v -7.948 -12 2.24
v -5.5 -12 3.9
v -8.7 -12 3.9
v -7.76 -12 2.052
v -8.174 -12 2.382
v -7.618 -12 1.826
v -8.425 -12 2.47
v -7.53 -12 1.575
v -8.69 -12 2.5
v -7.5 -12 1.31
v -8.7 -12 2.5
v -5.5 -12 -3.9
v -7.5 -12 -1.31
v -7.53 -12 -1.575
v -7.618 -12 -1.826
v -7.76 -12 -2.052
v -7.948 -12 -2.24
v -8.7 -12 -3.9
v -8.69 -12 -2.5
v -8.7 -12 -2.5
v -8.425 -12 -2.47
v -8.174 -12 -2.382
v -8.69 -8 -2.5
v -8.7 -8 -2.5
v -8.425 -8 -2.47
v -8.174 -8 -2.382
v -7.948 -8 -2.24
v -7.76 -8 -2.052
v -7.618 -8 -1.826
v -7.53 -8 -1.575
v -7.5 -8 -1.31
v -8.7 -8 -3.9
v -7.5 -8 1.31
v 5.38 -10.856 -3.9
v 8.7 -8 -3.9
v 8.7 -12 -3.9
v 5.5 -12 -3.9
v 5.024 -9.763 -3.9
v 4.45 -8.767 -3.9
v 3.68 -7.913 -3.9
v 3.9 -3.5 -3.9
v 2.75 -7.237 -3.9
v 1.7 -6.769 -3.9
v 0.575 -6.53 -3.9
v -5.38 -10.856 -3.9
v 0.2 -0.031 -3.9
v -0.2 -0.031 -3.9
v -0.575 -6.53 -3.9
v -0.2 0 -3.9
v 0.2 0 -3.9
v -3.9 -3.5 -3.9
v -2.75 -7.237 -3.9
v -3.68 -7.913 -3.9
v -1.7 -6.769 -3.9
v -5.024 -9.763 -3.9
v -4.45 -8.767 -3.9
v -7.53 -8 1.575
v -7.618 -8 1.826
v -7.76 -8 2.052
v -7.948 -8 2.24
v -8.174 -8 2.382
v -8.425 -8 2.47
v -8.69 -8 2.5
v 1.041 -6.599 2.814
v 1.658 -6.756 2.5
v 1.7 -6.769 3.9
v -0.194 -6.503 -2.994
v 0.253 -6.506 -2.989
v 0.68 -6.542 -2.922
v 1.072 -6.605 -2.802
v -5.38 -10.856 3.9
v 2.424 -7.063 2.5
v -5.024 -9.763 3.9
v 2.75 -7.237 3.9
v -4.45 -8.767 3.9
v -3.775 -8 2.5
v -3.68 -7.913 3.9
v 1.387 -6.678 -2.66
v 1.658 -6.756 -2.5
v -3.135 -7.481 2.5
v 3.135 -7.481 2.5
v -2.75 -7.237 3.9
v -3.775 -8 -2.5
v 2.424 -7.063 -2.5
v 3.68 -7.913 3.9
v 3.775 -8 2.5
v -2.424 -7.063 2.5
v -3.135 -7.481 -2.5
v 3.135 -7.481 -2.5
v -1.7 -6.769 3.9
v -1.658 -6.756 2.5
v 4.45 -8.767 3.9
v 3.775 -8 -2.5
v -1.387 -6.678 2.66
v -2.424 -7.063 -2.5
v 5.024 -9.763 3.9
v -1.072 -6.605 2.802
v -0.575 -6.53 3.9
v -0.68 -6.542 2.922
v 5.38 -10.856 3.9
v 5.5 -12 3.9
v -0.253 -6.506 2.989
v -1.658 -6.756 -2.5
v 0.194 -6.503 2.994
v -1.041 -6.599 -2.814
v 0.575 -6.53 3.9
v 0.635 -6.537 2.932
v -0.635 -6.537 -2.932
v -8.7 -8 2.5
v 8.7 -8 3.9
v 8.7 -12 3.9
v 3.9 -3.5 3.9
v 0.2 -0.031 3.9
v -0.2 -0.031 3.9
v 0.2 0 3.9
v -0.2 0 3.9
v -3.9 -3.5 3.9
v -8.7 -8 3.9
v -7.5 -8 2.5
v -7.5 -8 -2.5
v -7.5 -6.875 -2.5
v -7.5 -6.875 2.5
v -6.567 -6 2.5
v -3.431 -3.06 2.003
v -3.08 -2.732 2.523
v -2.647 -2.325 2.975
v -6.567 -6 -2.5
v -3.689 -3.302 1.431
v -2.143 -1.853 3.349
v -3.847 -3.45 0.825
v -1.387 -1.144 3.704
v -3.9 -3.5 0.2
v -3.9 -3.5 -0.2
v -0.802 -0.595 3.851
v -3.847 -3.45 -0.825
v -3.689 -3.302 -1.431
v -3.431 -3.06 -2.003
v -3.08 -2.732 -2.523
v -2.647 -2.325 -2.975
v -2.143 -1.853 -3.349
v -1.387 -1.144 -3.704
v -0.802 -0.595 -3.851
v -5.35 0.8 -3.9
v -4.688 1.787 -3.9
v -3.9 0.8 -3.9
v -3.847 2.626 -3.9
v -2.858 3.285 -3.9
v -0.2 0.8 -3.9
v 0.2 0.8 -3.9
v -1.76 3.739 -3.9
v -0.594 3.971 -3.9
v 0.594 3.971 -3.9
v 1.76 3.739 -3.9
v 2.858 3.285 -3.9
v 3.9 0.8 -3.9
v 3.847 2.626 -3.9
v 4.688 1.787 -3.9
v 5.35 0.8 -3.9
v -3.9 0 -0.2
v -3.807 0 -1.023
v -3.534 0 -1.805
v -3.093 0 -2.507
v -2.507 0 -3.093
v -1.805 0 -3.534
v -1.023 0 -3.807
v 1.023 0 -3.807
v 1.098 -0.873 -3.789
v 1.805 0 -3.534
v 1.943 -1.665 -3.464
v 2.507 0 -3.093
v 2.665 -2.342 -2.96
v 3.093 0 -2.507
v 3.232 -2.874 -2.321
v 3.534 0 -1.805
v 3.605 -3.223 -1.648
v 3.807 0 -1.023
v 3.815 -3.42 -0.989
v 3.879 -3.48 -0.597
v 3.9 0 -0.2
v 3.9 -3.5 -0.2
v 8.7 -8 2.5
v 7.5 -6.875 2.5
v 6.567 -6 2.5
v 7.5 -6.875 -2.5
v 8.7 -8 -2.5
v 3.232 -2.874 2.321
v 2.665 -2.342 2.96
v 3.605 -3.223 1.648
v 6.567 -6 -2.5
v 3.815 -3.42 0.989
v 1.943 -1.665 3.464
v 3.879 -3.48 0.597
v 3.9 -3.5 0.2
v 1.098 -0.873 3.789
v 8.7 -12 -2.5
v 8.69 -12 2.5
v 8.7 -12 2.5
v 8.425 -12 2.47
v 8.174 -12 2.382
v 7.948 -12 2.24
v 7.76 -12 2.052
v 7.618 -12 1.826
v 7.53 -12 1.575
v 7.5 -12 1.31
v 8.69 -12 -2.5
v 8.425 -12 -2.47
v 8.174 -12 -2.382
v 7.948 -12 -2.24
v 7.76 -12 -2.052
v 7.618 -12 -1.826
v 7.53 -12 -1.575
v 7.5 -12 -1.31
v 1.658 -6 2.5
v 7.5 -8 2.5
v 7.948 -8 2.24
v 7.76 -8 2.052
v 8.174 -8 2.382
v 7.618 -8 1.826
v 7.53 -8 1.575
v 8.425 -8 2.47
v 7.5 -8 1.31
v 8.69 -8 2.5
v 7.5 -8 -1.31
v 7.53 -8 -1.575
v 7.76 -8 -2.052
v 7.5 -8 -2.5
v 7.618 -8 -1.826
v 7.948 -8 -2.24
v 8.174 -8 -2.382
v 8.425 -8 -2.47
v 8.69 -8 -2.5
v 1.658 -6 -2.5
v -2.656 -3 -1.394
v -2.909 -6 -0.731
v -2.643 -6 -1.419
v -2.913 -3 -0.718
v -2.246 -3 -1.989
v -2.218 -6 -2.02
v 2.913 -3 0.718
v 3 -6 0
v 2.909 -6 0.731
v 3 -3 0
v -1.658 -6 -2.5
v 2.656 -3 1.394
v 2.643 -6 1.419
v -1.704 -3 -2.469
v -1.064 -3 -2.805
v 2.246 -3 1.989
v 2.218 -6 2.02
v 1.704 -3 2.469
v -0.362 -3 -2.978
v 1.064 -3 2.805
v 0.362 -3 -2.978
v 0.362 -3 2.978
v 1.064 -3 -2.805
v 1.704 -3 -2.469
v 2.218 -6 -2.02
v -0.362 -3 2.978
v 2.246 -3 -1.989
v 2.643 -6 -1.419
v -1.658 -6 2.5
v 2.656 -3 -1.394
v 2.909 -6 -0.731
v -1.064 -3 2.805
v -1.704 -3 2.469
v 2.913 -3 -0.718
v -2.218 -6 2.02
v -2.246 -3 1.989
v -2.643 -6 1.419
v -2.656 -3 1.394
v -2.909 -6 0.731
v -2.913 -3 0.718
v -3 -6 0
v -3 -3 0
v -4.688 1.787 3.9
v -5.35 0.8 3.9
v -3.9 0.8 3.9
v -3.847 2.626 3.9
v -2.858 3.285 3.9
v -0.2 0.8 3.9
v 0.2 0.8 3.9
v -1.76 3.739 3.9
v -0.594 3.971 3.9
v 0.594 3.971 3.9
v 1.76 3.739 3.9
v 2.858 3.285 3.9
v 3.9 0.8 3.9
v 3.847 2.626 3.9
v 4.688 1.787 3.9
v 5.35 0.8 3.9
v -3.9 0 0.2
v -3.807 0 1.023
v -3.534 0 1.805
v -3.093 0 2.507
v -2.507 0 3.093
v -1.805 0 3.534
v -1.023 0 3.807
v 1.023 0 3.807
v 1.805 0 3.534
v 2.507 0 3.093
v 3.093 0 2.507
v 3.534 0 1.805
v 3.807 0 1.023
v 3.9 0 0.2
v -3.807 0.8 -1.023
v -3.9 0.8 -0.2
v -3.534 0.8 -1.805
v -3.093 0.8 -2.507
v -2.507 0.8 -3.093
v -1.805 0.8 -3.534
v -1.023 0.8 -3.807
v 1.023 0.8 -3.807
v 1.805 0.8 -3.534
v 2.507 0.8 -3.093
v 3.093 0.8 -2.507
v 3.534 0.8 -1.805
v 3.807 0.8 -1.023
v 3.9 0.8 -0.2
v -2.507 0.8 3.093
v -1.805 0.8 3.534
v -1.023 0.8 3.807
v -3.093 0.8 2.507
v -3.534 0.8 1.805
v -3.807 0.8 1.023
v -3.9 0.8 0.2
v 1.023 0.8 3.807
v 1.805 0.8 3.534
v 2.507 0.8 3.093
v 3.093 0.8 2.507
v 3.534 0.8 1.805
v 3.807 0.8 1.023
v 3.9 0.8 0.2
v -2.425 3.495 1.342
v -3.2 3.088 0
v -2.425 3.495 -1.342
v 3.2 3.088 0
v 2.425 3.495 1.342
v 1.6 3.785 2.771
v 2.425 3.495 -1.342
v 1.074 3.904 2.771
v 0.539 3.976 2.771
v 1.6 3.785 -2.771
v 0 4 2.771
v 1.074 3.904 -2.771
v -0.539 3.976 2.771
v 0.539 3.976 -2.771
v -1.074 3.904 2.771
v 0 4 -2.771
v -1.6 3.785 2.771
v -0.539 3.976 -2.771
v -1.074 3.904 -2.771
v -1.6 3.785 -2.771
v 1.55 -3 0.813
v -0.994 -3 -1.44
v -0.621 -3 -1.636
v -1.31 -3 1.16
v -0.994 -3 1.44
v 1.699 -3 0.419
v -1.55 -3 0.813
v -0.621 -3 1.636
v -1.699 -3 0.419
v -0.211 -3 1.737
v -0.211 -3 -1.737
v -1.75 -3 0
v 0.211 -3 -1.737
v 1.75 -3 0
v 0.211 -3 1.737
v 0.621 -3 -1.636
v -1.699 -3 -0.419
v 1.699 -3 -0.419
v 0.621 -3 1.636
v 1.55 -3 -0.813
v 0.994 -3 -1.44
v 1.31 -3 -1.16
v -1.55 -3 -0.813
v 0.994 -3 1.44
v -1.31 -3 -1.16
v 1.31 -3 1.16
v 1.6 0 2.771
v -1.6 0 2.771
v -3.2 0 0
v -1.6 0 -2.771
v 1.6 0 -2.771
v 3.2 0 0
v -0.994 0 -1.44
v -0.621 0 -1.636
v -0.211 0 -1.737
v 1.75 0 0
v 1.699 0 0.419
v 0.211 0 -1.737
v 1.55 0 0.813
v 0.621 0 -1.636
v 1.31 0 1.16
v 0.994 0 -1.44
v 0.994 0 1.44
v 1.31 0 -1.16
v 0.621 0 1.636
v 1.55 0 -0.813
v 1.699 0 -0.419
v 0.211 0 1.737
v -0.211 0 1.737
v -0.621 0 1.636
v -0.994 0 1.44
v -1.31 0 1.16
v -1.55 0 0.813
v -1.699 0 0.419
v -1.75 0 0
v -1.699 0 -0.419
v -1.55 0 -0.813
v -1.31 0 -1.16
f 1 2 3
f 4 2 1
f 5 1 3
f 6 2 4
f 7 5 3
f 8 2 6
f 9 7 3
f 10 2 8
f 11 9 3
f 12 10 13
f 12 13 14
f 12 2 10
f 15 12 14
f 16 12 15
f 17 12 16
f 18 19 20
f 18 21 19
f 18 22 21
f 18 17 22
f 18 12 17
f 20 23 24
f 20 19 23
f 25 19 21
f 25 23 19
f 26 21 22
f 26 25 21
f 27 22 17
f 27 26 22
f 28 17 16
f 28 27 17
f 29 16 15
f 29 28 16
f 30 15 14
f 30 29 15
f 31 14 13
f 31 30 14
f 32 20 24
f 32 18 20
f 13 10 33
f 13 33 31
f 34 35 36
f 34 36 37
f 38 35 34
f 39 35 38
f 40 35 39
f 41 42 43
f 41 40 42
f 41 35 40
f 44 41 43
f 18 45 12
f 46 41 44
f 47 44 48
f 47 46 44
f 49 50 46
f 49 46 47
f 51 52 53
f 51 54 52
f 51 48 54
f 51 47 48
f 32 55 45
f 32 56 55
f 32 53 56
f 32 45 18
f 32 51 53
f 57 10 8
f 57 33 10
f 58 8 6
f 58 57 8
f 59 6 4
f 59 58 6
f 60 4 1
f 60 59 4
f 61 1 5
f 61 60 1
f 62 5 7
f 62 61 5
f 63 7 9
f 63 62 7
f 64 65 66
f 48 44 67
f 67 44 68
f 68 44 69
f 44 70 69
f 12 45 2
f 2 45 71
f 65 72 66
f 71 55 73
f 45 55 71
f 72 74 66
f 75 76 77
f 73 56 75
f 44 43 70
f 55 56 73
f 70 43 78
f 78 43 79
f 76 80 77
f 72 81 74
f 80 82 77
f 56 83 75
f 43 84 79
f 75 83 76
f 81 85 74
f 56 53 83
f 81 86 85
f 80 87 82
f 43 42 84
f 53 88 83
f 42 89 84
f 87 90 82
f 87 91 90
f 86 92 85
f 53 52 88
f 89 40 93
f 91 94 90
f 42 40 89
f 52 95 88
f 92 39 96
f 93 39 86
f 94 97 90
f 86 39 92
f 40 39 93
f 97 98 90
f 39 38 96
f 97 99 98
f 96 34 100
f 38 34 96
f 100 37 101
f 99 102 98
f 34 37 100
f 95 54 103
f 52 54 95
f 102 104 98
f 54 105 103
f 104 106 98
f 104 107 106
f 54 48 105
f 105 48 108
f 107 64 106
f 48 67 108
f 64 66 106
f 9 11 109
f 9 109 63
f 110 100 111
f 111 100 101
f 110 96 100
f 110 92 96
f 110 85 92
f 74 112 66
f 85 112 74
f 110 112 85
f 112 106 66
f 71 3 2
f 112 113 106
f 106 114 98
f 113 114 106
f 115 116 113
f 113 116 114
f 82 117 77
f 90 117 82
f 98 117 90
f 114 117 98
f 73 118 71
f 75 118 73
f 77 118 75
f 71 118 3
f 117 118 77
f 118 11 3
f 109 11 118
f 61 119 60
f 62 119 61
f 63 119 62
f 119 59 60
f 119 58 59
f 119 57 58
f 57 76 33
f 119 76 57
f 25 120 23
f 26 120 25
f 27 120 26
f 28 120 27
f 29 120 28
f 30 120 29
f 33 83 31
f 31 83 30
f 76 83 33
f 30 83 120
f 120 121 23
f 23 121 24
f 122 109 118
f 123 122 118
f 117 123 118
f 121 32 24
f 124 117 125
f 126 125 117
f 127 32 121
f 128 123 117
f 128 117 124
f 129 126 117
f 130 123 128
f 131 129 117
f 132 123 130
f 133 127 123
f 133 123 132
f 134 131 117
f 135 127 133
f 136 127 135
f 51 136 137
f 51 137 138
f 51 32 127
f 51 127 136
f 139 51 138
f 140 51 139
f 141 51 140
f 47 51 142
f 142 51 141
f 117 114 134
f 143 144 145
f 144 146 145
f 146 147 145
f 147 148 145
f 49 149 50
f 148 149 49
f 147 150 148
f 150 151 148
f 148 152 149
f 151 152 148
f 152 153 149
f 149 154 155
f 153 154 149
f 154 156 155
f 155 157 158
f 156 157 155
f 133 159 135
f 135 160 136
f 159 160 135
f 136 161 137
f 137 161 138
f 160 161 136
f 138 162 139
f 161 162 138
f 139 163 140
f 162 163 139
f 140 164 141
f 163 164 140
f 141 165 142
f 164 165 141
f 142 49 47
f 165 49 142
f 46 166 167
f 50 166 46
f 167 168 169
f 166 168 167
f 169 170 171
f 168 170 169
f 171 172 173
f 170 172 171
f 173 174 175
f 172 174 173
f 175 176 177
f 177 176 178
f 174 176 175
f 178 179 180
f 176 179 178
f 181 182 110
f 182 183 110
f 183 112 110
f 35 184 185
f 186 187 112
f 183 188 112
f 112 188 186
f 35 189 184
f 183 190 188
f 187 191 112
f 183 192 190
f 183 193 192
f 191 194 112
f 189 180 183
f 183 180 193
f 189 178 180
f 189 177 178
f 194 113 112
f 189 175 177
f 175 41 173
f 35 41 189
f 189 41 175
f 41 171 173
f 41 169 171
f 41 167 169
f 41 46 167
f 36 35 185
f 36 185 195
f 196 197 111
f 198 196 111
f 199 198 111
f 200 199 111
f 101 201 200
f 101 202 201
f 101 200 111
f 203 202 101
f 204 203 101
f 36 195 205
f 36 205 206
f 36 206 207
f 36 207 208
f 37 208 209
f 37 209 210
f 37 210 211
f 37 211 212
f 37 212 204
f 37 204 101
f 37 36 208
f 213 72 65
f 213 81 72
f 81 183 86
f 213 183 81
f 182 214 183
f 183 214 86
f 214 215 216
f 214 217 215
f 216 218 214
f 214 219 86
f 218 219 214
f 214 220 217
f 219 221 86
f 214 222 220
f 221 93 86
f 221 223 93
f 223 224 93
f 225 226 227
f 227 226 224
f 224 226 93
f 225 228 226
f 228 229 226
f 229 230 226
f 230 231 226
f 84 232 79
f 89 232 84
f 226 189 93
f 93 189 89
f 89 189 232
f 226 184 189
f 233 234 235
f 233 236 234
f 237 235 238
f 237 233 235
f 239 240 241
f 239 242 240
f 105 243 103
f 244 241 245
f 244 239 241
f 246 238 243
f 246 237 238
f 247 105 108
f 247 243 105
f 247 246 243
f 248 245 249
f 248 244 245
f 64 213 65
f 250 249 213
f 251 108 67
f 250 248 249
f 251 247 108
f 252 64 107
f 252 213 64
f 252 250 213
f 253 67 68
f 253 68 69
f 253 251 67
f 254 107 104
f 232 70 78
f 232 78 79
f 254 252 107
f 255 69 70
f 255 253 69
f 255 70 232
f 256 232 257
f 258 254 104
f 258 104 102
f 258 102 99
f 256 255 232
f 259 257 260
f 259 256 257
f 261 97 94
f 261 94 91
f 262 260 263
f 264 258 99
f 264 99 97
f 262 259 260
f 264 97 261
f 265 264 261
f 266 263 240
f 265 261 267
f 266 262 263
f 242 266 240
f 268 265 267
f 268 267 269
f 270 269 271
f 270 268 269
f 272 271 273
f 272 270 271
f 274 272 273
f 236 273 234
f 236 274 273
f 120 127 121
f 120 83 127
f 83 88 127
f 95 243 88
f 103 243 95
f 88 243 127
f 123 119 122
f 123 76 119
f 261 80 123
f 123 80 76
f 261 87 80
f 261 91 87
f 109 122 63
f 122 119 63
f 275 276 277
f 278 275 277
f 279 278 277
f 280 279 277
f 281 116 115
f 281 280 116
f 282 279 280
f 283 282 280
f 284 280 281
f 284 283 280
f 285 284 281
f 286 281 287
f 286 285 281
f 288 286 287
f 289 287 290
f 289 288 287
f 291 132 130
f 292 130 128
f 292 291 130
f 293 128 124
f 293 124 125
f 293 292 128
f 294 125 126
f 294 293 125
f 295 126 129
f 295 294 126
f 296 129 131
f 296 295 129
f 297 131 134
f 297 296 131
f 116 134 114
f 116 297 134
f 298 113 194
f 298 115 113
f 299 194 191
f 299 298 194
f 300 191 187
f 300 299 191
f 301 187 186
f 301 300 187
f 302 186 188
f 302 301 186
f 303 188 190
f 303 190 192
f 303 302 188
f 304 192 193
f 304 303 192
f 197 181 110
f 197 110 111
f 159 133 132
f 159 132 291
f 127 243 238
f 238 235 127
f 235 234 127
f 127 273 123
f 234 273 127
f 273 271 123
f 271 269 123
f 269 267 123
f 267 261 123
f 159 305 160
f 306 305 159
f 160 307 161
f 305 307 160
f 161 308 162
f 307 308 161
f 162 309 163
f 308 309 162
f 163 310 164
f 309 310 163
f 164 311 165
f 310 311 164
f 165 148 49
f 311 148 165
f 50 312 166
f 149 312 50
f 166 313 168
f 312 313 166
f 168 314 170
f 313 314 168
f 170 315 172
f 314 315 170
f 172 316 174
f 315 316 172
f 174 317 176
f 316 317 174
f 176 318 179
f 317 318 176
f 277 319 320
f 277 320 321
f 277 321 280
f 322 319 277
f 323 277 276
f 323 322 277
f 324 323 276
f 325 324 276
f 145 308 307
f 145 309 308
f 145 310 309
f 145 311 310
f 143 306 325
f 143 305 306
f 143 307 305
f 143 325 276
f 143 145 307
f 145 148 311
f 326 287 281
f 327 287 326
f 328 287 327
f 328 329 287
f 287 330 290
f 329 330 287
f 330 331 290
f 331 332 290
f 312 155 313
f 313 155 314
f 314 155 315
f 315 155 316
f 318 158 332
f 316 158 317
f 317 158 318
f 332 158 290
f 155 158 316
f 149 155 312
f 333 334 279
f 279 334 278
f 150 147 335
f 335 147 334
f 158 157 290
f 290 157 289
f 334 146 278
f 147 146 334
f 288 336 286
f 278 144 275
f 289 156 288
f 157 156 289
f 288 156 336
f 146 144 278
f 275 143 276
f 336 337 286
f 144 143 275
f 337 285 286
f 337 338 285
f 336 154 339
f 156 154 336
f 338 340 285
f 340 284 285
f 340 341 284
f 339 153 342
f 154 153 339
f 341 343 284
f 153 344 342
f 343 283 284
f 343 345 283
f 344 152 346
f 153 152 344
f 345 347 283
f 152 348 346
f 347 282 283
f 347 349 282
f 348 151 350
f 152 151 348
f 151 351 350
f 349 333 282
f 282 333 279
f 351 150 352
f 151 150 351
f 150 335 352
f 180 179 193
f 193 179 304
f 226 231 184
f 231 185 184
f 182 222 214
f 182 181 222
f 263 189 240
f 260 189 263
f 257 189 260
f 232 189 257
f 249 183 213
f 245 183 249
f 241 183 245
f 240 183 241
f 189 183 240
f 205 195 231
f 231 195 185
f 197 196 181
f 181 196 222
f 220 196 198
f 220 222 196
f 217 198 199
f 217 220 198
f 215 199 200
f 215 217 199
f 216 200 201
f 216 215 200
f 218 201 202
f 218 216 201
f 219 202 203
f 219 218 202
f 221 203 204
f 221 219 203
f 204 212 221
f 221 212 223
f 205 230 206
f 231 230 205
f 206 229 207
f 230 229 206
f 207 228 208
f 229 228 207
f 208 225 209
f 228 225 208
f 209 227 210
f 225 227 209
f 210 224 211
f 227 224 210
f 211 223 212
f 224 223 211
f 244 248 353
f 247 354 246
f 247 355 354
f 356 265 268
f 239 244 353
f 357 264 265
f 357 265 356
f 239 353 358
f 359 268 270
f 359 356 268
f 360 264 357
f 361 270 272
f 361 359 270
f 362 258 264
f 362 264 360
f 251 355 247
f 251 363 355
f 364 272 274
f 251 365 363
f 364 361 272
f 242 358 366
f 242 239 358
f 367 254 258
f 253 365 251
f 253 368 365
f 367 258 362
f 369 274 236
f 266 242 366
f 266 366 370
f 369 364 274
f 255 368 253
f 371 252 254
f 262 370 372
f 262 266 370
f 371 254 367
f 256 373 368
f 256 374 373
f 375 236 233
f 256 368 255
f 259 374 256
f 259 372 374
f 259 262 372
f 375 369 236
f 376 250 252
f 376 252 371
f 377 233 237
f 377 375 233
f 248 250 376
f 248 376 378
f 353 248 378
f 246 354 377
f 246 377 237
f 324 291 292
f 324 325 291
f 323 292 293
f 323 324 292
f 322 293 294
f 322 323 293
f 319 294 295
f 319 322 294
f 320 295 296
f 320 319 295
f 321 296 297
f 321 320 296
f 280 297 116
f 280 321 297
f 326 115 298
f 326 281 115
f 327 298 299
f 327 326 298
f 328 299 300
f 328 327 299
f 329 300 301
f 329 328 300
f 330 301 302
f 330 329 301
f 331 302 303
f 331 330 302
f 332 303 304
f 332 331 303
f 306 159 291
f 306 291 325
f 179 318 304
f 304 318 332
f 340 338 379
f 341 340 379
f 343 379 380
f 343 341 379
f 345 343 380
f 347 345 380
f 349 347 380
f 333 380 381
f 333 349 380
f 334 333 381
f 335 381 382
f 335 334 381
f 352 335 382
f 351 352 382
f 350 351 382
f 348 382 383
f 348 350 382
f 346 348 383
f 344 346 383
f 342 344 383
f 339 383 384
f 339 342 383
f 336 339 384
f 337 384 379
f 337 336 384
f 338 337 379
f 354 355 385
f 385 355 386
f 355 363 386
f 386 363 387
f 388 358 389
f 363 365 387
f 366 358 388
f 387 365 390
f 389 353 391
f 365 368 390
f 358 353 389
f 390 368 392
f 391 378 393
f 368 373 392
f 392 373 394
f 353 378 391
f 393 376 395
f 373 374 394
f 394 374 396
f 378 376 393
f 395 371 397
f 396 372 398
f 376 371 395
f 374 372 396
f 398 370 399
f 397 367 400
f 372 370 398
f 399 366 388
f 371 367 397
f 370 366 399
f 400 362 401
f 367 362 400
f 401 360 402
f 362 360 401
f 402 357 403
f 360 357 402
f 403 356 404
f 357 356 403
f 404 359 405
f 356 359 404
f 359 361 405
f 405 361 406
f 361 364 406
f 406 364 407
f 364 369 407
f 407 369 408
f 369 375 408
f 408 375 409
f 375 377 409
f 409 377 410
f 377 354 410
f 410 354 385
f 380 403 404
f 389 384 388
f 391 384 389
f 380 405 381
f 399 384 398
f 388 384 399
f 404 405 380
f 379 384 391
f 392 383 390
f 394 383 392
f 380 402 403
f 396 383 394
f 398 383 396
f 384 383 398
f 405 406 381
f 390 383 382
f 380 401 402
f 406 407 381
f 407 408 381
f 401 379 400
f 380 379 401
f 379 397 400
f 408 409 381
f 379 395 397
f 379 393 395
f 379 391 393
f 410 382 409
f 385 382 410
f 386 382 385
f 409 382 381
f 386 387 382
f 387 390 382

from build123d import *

# Parameters (mm, degrees)
PAD_DEPTH         = 3.9
PAD001_DEPTH      = 7.8
SKETCH002_R       = 1.75
POCKET_DEPTH      = 4.001
POCKET_DEPTH_BACK = 12.001
POCKET001_DEPTH   = 4
SKETCH004_R       = 3
POCKET002_DEPTH   = 6
SKETCH005_W       = 1.2
SKETCH005_H       = 5
POCKET003_DEPTH   = 16.001
SKETCH006_W       = 2
SKETCH006_H       = 5
POCKET004_DEPTH   = 17.401
FILLET_R          = 3.7
FILLET001_R       = 1.19


with BuildPart() as part:
    # Sketch → Pad (new body, symmetric)
    with BuildSketch(Plane.XY):
        with BuildLine():
            Line((-3.9, 0), (3.9, 0))
            Line((3.9, 0), (3.9, 0.8))
            Line((3.9, 0.8), (5.35, 0.8))
            ThreePointArc((5.35, 0.8), (0, 4), (-5.35, 0.8))
            Line((-5.35, 0.8), (-3.9, 0.8))
            Line((-3.9, 0.8), (-3.9, 0))
        make_face()
    extrude(amount=PAD_DEPTH, both=True)

    # Sketch001 (on Face7 of Pad) → Pad001 (join)
    with BuildSketch(Plane(origin=(0, 0, -3.9), x_dir=(1, 0, 0), z_dir=(0, 0, -1))):
        with BuildLine():
            Line((-8.7, 12), (-8.7, 8))
            Line((-8.7, 8), (-3.9, 3.5))
            Line((-3.9, 3.5), (-3.9, 0))
            Line((-3.9, 0), (3.9, 0))
            Line((3.9, 3.5), (3.9, 0))
            Line((8.7, 8), (3.9, 3.5))
            Line((8.7, 8), (8.7, 12))
            Line((8.7, 12), (5.5, 12))
            ThreePointArc((-5.5, 12), (0, 6.5), (5.5, 12))
            Line((-5.5, 12), (-8.7, 12))
        make_face()
    extrude(amount=-PAD001_DEPTH)

    # Sketch002 → Pocket (cut, two sides)
    with BuildSketch(Plane.XZ) as pocket_sk:
        Circle(SKETCH002_R)
    extrude(amount=-POCKET_DEPTH, mode=Mode.SUBTRACT)
    extrude(pocket_sk.sketch, amount=POCKET_DEPTH_BACK, mode=Mode.SUBTRACT)

    # Sketch003 (on DatumPlane) → Pocket001 (cut)
    with BuildSketch(Plane.XZ.offset(-4)):
        Polygon((-1.6, -2.771281), (1.6, -2.771281), (3.2, 0), (1.6, 2.771281), (-1.6, 2.771281), (-3.2, 0), align=None)
    extrude(amount=POCKET001_DEPTH, mode=Mode.SUBTRACT)

    # Sketch004 (on DatumPlane) → Pocket002 (cut)
    with BuildSketch(Plane.XZ.offset(3)):
        Circle(SKETCH004_R)
    extrude(amount=POCKET002_DEPTH, mode=Mode.SUBTRACT)

    # Sketch005 (on Face22 of Pocket002) → Pocket003 (cut, through all)
    with BuildSketch(Plane.XZ.offset(12)):
        with Locations((-8.1, 0)):
            Rectangle(SKETCH005_W, SKETCH005_H)
        with Locations((8.1, 0)):
            Rectangle(SKETCH005_W, SKETCH005_H)
    extrude(amount=-POCKET003_DEPTH, mode=Mode.SUBTRACT)

    # Sketch006 (on Face23 of Pocket003) → Pocket004 (cut, through all)
    with BuildSketch(Plane.YZ.offset(8.7)):
        with Locations((-7, 0)):
            Rectangle(SKETCH006_W, SKETCH006_H)
    extrude(amount=-POCKET004_DEPTH, mode=Mode.SUBTRACT)

    # Fillet
    fillet_edges = [part.edges().sort_by_distance(p)[0] for p in [
        (-3.9, -1.75, 3.9),
        (-3.9, -1.75, -3.9),
        (3.9, -1.75, 3.9),
        (3.9, -1.75, -3.9),
    ]]
    fillet(fillet_edges, radius=FILLET_R)

    # Fillet001
    fillet001_edges = [part.edges().sort_by_distance(p)[0] for p in [
        (7.5, -10, 2.5),
        (7.5, -10, -2.5),
        (-7.5, -10, 2.5),
        (-7.5, -10, -2.5),
    ]]
    fillet(fillet001_edges, radius=FILLET001_R)


solid = part.part
